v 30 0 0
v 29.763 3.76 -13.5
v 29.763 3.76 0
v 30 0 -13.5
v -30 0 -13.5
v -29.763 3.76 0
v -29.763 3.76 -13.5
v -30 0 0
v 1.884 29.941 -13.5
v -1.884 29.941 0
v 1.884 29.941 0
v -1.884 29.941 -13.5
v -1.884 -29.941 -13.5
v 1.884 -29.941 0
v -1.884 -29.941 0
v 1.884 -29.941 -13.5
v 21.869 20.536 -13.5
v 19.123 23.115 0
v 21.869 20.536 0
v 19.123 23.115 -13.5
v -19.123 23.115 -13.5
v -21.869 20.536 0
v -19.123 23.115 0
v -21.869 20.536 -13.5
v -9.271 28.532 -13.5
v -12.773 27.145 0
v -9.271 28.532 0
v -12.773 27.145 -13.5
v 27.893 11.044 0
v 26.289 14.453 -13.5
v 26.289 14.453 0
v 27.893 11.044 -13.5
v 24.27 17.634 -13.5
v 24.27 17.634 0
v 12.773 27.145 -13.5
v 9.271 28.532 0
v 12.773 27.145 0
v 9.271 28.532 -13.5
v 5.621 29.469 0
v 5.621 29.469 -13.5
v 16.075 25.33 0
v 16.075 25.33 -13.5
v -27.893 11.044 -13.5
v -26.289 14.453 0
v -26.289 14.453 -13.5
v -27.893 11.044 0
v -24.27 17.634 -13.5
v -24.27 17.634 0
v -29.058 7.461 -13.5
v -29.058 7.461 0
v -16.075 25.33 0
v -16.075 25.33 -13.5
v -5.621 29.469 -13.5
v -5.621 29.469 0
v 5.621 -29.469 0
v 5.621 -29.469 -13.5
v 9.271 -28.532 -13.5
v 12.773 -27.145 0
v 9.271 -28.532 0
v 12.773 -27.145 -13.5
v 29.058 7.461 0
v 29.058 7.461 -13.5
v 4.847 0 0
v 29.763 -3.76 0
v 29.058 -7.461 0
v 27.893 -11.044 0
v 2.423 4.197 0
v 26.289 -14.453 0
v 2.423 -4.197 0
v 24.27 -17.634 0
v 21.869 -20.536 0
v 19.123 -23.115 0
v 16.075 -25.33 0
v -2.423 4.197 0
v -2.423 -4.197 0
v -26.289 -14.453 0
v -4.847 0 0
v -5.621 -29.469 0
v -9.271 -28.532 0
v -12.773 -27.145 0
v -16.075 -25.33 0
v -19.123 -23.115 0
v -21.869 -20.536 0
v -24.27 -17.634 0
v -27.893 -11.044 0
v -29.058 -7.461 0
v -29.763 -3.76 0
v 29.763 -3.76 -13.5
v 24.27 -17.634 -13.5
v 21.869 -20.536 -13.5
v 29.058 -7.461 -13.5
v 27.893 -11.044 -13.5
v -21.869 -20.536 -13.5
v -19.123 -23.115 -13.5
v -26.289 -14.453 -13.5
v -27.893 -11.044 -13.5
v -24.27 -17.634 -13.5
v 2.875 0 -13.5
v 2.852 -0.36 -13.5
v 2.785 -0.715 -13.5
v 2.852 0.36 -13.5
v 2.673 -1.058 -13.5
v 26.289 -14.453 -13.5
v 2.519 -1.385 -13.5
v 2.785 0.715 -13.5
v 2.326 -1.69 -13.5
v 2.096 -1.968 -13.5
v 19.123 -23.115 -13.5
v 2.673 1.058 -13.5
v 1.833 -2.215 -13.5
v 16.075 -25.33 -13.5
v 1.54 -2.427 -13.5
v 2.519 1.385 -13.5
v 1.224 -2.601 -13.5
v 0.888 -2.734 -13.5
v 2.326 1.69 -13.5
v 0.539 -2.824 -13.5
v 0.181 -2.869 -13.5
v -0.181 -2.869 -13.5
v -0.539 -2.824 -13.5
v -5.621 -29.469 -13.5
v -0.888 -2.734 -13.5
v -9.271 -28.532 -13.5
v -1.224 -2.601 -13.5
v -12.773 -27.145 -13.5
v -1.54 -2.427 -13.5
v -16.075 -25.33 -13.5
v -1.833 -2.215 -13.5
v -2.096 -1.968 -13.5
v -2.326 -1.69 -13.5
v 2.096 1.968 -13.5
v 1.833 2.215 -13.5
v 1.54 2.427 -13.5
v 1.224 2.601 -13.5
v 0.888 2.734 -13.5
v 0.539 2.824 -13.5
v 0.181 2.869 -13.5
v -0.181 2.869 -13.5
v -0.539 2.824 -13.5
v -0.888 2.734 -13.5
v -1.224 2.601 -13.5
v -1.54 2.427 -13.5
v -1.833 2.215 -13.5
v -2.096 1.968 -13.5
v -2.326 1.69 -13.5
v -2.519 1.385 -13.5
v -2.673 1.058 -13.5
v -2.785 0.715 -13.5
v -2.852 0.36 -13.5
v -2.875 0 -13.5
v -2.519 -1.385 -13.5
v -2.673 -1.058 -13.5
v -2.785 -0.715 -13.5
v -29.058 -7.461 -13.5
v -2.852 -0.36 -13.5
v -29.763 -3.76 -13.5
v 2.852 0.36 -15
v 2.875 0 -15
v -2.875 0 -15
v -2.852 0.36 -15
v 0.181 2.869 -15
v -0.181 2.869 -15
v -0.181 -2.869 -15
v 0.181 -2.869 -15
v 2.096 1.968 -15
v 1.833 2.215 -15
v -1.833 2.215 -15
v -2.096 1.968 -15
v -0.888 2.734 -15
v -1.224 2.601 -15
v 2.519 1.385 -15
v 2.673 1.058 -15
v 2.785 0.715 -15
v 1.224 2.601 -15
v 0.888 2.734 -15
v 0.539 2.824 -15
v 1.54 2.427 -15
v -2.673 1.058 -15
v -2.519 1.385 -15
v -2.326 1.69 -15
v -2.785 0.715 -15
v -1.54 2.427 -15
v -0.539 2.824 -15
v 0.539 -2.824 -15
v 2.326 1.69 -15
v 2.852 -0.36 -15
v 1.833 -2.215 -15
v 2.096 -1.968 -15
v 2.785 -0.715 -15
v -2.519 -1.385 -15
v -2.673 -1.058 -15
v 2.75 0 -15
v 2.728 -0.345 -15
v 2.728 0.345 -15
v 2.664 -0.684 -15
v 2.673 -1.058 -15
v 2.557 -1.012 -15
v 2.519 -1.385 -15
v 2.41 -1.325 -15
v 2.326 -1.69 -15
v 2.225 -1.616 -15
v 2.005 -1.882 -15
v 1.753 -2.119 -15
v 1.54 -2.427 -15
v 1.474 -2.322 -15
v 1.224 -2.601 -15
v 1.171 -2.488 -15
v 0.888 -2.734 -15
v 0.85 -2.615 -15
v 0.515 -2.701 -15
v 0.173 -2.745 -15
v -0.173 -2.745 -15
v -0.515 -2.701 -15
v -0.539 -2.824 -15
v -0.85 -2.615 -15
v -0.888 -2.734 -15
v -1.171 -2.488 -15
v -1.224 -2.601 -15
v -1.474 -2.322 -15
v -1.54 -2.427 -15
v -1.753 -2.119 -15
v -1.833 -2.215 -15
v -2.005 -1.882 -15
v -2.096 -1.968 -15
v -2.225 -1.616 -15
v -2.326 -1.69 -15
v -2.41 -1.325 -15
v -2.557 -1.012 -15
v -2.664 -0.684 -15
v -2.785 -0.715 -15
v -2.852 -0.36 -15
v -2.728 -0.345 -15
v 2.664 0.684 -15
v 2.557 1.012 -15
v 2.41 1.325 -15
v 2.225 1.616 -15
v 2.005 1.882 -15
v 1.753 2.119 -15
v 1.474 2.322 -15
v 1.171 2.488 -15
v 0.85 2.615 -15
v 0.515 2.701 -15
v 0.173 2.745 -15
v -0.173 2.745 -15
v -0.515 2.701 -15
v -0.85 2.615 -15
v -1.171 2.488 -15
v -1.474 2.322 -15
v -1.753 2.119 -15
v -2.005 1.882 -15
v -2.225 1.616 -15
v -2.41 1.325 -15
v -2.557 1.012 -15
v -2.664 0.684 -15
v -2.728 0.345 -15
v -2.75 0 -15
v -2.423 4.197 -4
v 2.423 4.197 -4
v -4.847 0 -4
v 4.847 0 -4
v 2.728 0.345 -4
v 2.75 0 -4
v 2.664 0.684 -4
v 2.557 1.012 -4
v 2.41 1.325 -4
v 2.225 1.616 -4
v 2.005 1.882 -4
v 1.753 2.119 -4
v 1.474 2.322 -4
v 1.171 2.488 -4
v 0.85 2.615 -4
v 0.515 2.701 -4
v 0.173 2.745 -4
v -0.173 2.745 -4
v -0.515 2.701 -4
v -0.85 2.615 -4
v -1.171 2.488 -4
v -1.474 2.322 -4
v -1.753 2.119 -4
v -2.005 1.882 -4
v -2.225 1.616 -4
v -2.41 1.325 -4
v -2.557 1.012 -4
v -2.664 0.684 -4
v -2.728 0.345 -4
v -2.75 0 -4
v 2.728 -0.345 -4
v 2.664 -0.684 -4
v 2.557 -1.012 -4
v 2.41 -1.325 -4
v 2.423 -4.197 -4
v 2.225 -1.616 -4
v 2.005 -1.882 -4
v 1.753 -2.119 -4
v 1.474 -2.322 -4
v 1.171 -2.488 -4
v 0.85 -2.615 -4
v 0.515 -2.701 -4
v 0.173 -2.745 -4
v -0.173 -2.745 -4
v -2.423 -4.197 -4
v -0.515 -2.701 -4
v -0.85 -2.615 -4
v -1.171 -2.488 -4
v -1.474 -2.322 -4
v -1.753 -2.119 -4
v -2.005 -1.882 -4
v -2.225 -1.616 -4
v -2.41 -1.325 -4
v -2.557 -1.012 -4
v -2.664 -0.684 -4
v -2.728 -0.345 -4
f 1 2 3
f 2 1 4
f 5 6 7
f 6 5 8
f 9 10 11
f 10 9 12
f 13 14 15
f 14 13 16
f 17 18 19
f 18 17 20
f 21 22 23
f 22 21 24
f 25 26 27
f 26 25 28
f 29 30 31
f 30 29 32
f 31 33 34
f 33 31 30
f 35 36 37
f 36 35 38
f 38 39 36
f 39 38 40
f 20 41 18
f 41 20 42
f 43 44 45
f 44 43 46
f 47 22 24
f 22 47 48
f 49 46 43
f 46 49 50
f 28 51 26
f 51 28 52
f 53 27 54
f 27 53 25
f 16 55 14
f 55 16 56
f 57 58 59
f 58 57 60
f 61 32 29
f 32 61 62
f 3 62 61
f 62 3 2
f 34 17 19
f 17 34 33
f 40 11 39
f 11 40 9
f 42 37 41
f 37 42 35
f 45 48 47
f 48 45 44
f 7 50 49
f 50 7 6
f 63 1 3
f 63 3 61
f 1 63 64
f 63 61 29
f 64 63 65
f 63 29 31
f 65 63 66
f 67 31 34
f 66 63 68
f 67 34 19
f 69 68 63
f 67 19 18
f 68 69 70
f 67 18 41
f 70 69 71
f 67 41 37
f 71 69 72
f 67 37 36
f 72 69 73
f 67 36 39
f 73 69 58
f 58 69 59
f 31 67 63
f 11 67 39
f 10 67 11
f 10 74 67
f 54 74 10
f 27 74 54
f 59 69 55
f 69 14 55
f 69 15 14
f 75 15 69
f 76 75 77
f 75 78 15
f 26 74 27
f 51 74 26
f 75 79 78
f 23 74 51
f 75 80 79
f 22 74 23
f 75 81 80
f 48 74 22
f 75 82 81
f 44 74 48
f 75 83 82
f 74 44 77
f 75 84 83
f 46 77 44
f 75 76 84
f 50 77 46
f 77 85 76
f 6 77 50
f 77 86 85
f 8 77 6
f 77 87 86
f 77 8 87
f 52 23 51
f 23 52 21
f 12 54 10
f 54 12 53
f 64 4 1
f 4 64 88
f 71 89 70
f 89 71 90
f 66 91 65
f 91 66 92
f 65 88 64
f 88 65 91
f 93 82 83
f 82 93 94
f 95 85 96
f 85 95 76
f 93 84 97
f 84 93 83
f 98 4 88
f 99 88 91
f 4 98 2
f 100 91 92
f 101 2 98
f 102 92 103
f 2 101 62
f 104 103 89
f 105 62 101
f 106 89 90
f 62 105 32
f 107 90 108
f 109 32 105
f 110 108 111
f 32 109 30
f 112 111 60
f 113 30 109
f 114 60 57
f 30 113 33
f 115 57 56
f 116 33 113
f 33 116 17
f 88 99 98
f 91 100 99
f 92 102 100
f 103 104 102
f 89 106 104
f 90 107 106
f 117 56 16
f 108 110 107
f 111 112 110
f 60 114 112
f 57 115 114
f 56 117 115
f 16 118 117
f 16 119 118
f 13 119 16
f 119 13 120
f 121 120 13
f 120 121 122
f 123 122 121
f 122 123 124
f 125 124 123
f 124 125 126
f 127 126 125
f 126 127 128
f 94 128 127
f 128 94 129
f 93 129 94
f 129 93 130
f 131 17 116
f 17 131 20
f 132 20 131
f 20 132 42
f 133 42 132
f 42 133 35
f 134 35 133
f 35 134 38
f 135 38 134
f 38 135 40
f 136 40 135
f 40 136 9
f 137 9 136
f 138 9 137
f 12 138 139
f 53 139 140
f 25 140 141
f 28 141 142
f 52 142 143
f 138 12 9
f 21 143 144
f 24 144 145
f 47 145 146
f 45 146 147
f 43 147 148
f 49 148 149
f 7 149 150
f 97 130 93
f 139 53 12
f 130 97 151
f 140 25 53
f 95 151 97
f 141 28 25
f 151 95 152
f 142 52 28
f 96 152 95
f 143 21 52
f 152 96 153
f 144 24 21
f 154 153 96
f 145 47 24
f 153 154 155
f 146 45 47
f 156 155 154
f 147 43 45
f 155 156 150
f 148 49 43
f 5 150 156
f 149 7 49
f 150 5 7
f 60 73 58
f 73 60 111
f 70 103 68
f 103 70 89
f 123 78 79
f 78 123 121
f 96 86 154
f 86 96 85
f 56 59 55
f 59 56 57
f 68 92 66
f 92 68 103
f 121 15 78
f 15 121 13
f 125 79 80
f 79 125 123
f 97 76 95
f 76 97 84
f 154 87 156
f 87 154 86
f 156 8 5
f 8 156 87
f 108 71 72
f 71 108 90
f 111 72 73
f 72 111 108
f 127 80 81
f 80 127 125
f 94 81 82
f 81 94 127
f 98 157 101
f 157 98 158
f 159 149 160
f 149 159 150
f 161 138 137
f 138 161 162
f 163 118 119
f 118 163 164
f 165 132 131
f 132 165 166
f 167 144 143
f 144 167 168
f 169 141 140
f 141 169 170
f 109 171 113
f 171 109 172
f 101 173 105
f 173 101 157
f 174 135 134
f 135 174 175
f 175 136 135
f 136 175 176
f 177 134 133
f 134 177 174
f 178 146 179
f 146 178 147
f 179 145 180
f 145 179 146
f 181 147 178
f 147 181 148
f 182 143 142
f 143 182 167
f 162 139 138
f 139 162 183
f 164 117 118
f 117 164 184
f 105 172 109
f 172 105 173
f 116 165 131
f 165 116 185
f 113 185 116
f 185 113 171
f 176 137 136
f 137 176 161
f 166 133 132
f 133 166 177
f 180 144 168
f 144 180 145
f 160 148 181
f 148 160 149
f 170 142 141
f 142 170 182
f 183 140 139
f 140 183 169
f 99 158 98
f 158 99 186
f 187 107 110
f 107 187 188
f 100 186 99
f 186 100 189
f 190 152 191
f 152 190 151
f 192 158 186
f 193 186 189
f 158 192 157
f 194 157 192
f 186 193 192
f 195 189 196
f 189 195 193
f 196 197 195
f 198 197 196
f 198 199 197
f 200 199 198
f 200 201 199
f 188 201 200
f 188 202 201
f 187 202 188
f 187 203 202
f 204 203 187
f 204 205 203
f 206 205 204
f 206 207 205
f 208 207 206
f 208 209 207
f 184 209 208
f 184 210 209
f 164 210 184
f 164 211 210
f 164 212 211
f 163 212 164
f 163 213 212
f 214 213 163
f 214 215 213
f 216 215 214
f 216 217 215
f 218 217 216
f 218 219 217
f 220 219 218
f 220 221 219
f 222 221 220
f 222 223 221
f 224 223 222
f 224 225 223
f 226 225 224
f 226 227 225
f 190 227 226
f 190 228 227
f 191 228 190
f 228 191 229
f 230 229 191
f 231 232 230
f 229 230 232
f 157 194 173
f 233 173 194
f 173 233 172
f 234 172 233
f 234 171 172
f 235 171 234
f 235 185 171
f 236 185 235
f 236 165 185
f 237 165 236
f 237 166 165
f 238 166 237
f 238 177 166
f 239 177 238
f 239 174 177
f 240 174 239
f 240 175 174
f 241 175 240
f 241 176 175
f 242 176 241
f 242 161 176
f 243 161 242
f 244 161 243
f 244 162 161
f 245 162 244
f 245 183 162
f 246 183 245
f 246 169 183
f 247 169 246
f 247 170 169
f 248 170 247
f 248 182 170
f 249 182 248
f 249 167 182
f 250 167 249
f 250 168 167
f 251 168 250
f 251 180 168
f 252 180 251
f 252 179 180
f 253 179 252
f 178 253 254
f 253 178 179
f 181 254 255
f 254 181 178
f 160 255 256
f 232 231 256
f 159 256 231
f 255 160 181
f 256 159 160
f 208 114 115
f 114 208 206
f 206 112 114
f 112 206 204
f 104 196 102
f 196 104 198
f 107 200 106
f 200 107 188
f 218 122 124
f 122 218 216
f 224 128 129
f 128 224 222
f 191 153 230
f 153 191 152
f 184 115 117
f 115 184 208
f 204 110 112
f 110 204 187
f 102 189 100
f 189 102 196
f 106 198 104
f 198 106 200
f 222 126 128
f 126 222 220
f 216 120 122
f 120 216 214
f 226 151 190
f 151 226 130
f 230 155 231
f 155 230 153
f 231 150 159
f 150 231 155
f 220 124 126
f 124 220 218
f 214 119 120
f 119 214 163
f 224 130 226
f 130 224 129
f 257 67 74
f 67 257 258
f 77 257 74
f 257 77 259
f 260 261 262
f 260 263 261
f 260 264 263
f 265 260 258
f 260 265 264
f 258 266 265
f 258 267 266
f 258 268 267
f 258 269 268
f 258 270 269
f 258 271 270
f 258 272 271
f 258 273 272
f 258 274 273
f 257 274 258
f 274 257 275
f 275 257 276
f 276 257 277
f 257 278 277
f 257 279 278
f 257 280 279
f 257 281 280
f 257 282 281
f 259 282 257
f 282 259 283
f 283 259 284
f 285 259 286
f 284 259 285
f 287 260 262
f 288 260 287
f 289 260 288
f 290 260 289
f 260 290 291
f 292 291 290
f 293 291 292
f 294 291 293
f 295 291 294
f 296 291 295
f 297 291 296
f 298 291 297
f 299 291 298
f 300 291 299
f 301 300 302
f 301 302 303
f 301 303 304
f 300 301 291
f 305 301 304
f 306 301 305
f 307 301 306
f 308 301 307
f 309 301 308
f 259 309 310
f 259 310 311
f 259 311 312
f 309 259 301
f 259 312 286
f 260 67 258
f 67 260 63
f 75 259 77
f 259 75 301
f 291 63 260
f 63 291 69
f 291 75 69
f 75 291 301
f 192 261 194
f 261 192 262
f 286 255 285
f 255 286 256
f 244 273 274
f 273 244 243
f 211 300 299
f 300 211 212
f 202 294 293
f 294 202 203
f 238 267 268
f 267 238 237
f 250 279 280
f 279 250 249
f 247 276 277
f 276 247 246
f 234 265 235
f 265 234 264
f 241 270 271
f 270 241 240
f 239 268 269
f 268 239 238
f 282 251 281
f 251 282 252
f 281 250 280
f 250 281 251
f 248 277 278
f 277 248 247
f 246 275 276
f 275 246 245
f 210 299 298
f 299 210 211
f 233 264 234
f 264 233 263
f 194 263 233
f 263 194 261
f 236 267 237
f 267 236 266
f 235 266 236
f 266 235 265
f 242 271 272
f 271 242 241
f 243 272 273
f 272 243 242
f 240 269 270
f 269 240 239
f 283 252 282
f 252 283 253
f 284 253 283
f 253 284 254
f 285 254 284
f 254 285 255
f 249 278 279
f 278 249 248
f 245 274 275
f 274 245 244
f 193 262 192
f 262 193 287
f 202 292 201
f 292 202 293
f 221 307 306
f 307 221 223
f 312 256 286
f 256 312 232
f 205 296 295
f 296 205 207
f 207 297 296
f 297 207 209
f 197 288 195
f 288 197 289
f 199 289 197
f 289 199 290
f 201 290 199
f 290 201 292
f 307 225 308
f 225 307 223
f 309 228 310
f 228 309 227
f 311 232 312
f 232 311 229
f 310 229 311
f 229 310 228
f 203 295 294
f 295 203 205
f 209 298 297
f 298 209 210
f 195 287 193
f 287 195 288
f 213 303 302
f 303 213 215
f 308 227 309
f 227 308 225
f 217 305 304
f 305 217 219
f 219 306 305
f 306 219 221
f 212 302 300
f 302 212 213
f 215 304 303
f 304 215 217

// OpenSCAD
$fn = 50;


difference() {
	union() {
		translate(v = [0, 0, -13.5000000000]) {
			cylinder(h = 13.5000000000, r = 30.0000000000);
		}
		translate(v = [0, 0, -15.0000000000]) {
			cylinder(h = 15, r = 2.8750000000);
		}
	}
	union() {
		translate(v = [0, 0, 0]) {
			rotate(a = [0, 0, 0]) {
				difference() {
					union() {
						translate(v = [0, 0, -4]) {
							linear_extrude(height = 4) {
								polygon(points = [[4.8468000000, 0.0000000000], [2.4234000000, 4.1974519271], [-2.4234000000, 4.1974519271], [-4.8468000000, 0.0000000000], [-2.4234000000, -4.1974519271], [2.4234000000, -4.1974519271]]);
							}
						}
					}
					union();
				}
			}
		}
		#translate(v = [0, 0, -100.0000000000]) {
			cylinder(h = 200, r = 2.7500000000);
		}
	}
}
